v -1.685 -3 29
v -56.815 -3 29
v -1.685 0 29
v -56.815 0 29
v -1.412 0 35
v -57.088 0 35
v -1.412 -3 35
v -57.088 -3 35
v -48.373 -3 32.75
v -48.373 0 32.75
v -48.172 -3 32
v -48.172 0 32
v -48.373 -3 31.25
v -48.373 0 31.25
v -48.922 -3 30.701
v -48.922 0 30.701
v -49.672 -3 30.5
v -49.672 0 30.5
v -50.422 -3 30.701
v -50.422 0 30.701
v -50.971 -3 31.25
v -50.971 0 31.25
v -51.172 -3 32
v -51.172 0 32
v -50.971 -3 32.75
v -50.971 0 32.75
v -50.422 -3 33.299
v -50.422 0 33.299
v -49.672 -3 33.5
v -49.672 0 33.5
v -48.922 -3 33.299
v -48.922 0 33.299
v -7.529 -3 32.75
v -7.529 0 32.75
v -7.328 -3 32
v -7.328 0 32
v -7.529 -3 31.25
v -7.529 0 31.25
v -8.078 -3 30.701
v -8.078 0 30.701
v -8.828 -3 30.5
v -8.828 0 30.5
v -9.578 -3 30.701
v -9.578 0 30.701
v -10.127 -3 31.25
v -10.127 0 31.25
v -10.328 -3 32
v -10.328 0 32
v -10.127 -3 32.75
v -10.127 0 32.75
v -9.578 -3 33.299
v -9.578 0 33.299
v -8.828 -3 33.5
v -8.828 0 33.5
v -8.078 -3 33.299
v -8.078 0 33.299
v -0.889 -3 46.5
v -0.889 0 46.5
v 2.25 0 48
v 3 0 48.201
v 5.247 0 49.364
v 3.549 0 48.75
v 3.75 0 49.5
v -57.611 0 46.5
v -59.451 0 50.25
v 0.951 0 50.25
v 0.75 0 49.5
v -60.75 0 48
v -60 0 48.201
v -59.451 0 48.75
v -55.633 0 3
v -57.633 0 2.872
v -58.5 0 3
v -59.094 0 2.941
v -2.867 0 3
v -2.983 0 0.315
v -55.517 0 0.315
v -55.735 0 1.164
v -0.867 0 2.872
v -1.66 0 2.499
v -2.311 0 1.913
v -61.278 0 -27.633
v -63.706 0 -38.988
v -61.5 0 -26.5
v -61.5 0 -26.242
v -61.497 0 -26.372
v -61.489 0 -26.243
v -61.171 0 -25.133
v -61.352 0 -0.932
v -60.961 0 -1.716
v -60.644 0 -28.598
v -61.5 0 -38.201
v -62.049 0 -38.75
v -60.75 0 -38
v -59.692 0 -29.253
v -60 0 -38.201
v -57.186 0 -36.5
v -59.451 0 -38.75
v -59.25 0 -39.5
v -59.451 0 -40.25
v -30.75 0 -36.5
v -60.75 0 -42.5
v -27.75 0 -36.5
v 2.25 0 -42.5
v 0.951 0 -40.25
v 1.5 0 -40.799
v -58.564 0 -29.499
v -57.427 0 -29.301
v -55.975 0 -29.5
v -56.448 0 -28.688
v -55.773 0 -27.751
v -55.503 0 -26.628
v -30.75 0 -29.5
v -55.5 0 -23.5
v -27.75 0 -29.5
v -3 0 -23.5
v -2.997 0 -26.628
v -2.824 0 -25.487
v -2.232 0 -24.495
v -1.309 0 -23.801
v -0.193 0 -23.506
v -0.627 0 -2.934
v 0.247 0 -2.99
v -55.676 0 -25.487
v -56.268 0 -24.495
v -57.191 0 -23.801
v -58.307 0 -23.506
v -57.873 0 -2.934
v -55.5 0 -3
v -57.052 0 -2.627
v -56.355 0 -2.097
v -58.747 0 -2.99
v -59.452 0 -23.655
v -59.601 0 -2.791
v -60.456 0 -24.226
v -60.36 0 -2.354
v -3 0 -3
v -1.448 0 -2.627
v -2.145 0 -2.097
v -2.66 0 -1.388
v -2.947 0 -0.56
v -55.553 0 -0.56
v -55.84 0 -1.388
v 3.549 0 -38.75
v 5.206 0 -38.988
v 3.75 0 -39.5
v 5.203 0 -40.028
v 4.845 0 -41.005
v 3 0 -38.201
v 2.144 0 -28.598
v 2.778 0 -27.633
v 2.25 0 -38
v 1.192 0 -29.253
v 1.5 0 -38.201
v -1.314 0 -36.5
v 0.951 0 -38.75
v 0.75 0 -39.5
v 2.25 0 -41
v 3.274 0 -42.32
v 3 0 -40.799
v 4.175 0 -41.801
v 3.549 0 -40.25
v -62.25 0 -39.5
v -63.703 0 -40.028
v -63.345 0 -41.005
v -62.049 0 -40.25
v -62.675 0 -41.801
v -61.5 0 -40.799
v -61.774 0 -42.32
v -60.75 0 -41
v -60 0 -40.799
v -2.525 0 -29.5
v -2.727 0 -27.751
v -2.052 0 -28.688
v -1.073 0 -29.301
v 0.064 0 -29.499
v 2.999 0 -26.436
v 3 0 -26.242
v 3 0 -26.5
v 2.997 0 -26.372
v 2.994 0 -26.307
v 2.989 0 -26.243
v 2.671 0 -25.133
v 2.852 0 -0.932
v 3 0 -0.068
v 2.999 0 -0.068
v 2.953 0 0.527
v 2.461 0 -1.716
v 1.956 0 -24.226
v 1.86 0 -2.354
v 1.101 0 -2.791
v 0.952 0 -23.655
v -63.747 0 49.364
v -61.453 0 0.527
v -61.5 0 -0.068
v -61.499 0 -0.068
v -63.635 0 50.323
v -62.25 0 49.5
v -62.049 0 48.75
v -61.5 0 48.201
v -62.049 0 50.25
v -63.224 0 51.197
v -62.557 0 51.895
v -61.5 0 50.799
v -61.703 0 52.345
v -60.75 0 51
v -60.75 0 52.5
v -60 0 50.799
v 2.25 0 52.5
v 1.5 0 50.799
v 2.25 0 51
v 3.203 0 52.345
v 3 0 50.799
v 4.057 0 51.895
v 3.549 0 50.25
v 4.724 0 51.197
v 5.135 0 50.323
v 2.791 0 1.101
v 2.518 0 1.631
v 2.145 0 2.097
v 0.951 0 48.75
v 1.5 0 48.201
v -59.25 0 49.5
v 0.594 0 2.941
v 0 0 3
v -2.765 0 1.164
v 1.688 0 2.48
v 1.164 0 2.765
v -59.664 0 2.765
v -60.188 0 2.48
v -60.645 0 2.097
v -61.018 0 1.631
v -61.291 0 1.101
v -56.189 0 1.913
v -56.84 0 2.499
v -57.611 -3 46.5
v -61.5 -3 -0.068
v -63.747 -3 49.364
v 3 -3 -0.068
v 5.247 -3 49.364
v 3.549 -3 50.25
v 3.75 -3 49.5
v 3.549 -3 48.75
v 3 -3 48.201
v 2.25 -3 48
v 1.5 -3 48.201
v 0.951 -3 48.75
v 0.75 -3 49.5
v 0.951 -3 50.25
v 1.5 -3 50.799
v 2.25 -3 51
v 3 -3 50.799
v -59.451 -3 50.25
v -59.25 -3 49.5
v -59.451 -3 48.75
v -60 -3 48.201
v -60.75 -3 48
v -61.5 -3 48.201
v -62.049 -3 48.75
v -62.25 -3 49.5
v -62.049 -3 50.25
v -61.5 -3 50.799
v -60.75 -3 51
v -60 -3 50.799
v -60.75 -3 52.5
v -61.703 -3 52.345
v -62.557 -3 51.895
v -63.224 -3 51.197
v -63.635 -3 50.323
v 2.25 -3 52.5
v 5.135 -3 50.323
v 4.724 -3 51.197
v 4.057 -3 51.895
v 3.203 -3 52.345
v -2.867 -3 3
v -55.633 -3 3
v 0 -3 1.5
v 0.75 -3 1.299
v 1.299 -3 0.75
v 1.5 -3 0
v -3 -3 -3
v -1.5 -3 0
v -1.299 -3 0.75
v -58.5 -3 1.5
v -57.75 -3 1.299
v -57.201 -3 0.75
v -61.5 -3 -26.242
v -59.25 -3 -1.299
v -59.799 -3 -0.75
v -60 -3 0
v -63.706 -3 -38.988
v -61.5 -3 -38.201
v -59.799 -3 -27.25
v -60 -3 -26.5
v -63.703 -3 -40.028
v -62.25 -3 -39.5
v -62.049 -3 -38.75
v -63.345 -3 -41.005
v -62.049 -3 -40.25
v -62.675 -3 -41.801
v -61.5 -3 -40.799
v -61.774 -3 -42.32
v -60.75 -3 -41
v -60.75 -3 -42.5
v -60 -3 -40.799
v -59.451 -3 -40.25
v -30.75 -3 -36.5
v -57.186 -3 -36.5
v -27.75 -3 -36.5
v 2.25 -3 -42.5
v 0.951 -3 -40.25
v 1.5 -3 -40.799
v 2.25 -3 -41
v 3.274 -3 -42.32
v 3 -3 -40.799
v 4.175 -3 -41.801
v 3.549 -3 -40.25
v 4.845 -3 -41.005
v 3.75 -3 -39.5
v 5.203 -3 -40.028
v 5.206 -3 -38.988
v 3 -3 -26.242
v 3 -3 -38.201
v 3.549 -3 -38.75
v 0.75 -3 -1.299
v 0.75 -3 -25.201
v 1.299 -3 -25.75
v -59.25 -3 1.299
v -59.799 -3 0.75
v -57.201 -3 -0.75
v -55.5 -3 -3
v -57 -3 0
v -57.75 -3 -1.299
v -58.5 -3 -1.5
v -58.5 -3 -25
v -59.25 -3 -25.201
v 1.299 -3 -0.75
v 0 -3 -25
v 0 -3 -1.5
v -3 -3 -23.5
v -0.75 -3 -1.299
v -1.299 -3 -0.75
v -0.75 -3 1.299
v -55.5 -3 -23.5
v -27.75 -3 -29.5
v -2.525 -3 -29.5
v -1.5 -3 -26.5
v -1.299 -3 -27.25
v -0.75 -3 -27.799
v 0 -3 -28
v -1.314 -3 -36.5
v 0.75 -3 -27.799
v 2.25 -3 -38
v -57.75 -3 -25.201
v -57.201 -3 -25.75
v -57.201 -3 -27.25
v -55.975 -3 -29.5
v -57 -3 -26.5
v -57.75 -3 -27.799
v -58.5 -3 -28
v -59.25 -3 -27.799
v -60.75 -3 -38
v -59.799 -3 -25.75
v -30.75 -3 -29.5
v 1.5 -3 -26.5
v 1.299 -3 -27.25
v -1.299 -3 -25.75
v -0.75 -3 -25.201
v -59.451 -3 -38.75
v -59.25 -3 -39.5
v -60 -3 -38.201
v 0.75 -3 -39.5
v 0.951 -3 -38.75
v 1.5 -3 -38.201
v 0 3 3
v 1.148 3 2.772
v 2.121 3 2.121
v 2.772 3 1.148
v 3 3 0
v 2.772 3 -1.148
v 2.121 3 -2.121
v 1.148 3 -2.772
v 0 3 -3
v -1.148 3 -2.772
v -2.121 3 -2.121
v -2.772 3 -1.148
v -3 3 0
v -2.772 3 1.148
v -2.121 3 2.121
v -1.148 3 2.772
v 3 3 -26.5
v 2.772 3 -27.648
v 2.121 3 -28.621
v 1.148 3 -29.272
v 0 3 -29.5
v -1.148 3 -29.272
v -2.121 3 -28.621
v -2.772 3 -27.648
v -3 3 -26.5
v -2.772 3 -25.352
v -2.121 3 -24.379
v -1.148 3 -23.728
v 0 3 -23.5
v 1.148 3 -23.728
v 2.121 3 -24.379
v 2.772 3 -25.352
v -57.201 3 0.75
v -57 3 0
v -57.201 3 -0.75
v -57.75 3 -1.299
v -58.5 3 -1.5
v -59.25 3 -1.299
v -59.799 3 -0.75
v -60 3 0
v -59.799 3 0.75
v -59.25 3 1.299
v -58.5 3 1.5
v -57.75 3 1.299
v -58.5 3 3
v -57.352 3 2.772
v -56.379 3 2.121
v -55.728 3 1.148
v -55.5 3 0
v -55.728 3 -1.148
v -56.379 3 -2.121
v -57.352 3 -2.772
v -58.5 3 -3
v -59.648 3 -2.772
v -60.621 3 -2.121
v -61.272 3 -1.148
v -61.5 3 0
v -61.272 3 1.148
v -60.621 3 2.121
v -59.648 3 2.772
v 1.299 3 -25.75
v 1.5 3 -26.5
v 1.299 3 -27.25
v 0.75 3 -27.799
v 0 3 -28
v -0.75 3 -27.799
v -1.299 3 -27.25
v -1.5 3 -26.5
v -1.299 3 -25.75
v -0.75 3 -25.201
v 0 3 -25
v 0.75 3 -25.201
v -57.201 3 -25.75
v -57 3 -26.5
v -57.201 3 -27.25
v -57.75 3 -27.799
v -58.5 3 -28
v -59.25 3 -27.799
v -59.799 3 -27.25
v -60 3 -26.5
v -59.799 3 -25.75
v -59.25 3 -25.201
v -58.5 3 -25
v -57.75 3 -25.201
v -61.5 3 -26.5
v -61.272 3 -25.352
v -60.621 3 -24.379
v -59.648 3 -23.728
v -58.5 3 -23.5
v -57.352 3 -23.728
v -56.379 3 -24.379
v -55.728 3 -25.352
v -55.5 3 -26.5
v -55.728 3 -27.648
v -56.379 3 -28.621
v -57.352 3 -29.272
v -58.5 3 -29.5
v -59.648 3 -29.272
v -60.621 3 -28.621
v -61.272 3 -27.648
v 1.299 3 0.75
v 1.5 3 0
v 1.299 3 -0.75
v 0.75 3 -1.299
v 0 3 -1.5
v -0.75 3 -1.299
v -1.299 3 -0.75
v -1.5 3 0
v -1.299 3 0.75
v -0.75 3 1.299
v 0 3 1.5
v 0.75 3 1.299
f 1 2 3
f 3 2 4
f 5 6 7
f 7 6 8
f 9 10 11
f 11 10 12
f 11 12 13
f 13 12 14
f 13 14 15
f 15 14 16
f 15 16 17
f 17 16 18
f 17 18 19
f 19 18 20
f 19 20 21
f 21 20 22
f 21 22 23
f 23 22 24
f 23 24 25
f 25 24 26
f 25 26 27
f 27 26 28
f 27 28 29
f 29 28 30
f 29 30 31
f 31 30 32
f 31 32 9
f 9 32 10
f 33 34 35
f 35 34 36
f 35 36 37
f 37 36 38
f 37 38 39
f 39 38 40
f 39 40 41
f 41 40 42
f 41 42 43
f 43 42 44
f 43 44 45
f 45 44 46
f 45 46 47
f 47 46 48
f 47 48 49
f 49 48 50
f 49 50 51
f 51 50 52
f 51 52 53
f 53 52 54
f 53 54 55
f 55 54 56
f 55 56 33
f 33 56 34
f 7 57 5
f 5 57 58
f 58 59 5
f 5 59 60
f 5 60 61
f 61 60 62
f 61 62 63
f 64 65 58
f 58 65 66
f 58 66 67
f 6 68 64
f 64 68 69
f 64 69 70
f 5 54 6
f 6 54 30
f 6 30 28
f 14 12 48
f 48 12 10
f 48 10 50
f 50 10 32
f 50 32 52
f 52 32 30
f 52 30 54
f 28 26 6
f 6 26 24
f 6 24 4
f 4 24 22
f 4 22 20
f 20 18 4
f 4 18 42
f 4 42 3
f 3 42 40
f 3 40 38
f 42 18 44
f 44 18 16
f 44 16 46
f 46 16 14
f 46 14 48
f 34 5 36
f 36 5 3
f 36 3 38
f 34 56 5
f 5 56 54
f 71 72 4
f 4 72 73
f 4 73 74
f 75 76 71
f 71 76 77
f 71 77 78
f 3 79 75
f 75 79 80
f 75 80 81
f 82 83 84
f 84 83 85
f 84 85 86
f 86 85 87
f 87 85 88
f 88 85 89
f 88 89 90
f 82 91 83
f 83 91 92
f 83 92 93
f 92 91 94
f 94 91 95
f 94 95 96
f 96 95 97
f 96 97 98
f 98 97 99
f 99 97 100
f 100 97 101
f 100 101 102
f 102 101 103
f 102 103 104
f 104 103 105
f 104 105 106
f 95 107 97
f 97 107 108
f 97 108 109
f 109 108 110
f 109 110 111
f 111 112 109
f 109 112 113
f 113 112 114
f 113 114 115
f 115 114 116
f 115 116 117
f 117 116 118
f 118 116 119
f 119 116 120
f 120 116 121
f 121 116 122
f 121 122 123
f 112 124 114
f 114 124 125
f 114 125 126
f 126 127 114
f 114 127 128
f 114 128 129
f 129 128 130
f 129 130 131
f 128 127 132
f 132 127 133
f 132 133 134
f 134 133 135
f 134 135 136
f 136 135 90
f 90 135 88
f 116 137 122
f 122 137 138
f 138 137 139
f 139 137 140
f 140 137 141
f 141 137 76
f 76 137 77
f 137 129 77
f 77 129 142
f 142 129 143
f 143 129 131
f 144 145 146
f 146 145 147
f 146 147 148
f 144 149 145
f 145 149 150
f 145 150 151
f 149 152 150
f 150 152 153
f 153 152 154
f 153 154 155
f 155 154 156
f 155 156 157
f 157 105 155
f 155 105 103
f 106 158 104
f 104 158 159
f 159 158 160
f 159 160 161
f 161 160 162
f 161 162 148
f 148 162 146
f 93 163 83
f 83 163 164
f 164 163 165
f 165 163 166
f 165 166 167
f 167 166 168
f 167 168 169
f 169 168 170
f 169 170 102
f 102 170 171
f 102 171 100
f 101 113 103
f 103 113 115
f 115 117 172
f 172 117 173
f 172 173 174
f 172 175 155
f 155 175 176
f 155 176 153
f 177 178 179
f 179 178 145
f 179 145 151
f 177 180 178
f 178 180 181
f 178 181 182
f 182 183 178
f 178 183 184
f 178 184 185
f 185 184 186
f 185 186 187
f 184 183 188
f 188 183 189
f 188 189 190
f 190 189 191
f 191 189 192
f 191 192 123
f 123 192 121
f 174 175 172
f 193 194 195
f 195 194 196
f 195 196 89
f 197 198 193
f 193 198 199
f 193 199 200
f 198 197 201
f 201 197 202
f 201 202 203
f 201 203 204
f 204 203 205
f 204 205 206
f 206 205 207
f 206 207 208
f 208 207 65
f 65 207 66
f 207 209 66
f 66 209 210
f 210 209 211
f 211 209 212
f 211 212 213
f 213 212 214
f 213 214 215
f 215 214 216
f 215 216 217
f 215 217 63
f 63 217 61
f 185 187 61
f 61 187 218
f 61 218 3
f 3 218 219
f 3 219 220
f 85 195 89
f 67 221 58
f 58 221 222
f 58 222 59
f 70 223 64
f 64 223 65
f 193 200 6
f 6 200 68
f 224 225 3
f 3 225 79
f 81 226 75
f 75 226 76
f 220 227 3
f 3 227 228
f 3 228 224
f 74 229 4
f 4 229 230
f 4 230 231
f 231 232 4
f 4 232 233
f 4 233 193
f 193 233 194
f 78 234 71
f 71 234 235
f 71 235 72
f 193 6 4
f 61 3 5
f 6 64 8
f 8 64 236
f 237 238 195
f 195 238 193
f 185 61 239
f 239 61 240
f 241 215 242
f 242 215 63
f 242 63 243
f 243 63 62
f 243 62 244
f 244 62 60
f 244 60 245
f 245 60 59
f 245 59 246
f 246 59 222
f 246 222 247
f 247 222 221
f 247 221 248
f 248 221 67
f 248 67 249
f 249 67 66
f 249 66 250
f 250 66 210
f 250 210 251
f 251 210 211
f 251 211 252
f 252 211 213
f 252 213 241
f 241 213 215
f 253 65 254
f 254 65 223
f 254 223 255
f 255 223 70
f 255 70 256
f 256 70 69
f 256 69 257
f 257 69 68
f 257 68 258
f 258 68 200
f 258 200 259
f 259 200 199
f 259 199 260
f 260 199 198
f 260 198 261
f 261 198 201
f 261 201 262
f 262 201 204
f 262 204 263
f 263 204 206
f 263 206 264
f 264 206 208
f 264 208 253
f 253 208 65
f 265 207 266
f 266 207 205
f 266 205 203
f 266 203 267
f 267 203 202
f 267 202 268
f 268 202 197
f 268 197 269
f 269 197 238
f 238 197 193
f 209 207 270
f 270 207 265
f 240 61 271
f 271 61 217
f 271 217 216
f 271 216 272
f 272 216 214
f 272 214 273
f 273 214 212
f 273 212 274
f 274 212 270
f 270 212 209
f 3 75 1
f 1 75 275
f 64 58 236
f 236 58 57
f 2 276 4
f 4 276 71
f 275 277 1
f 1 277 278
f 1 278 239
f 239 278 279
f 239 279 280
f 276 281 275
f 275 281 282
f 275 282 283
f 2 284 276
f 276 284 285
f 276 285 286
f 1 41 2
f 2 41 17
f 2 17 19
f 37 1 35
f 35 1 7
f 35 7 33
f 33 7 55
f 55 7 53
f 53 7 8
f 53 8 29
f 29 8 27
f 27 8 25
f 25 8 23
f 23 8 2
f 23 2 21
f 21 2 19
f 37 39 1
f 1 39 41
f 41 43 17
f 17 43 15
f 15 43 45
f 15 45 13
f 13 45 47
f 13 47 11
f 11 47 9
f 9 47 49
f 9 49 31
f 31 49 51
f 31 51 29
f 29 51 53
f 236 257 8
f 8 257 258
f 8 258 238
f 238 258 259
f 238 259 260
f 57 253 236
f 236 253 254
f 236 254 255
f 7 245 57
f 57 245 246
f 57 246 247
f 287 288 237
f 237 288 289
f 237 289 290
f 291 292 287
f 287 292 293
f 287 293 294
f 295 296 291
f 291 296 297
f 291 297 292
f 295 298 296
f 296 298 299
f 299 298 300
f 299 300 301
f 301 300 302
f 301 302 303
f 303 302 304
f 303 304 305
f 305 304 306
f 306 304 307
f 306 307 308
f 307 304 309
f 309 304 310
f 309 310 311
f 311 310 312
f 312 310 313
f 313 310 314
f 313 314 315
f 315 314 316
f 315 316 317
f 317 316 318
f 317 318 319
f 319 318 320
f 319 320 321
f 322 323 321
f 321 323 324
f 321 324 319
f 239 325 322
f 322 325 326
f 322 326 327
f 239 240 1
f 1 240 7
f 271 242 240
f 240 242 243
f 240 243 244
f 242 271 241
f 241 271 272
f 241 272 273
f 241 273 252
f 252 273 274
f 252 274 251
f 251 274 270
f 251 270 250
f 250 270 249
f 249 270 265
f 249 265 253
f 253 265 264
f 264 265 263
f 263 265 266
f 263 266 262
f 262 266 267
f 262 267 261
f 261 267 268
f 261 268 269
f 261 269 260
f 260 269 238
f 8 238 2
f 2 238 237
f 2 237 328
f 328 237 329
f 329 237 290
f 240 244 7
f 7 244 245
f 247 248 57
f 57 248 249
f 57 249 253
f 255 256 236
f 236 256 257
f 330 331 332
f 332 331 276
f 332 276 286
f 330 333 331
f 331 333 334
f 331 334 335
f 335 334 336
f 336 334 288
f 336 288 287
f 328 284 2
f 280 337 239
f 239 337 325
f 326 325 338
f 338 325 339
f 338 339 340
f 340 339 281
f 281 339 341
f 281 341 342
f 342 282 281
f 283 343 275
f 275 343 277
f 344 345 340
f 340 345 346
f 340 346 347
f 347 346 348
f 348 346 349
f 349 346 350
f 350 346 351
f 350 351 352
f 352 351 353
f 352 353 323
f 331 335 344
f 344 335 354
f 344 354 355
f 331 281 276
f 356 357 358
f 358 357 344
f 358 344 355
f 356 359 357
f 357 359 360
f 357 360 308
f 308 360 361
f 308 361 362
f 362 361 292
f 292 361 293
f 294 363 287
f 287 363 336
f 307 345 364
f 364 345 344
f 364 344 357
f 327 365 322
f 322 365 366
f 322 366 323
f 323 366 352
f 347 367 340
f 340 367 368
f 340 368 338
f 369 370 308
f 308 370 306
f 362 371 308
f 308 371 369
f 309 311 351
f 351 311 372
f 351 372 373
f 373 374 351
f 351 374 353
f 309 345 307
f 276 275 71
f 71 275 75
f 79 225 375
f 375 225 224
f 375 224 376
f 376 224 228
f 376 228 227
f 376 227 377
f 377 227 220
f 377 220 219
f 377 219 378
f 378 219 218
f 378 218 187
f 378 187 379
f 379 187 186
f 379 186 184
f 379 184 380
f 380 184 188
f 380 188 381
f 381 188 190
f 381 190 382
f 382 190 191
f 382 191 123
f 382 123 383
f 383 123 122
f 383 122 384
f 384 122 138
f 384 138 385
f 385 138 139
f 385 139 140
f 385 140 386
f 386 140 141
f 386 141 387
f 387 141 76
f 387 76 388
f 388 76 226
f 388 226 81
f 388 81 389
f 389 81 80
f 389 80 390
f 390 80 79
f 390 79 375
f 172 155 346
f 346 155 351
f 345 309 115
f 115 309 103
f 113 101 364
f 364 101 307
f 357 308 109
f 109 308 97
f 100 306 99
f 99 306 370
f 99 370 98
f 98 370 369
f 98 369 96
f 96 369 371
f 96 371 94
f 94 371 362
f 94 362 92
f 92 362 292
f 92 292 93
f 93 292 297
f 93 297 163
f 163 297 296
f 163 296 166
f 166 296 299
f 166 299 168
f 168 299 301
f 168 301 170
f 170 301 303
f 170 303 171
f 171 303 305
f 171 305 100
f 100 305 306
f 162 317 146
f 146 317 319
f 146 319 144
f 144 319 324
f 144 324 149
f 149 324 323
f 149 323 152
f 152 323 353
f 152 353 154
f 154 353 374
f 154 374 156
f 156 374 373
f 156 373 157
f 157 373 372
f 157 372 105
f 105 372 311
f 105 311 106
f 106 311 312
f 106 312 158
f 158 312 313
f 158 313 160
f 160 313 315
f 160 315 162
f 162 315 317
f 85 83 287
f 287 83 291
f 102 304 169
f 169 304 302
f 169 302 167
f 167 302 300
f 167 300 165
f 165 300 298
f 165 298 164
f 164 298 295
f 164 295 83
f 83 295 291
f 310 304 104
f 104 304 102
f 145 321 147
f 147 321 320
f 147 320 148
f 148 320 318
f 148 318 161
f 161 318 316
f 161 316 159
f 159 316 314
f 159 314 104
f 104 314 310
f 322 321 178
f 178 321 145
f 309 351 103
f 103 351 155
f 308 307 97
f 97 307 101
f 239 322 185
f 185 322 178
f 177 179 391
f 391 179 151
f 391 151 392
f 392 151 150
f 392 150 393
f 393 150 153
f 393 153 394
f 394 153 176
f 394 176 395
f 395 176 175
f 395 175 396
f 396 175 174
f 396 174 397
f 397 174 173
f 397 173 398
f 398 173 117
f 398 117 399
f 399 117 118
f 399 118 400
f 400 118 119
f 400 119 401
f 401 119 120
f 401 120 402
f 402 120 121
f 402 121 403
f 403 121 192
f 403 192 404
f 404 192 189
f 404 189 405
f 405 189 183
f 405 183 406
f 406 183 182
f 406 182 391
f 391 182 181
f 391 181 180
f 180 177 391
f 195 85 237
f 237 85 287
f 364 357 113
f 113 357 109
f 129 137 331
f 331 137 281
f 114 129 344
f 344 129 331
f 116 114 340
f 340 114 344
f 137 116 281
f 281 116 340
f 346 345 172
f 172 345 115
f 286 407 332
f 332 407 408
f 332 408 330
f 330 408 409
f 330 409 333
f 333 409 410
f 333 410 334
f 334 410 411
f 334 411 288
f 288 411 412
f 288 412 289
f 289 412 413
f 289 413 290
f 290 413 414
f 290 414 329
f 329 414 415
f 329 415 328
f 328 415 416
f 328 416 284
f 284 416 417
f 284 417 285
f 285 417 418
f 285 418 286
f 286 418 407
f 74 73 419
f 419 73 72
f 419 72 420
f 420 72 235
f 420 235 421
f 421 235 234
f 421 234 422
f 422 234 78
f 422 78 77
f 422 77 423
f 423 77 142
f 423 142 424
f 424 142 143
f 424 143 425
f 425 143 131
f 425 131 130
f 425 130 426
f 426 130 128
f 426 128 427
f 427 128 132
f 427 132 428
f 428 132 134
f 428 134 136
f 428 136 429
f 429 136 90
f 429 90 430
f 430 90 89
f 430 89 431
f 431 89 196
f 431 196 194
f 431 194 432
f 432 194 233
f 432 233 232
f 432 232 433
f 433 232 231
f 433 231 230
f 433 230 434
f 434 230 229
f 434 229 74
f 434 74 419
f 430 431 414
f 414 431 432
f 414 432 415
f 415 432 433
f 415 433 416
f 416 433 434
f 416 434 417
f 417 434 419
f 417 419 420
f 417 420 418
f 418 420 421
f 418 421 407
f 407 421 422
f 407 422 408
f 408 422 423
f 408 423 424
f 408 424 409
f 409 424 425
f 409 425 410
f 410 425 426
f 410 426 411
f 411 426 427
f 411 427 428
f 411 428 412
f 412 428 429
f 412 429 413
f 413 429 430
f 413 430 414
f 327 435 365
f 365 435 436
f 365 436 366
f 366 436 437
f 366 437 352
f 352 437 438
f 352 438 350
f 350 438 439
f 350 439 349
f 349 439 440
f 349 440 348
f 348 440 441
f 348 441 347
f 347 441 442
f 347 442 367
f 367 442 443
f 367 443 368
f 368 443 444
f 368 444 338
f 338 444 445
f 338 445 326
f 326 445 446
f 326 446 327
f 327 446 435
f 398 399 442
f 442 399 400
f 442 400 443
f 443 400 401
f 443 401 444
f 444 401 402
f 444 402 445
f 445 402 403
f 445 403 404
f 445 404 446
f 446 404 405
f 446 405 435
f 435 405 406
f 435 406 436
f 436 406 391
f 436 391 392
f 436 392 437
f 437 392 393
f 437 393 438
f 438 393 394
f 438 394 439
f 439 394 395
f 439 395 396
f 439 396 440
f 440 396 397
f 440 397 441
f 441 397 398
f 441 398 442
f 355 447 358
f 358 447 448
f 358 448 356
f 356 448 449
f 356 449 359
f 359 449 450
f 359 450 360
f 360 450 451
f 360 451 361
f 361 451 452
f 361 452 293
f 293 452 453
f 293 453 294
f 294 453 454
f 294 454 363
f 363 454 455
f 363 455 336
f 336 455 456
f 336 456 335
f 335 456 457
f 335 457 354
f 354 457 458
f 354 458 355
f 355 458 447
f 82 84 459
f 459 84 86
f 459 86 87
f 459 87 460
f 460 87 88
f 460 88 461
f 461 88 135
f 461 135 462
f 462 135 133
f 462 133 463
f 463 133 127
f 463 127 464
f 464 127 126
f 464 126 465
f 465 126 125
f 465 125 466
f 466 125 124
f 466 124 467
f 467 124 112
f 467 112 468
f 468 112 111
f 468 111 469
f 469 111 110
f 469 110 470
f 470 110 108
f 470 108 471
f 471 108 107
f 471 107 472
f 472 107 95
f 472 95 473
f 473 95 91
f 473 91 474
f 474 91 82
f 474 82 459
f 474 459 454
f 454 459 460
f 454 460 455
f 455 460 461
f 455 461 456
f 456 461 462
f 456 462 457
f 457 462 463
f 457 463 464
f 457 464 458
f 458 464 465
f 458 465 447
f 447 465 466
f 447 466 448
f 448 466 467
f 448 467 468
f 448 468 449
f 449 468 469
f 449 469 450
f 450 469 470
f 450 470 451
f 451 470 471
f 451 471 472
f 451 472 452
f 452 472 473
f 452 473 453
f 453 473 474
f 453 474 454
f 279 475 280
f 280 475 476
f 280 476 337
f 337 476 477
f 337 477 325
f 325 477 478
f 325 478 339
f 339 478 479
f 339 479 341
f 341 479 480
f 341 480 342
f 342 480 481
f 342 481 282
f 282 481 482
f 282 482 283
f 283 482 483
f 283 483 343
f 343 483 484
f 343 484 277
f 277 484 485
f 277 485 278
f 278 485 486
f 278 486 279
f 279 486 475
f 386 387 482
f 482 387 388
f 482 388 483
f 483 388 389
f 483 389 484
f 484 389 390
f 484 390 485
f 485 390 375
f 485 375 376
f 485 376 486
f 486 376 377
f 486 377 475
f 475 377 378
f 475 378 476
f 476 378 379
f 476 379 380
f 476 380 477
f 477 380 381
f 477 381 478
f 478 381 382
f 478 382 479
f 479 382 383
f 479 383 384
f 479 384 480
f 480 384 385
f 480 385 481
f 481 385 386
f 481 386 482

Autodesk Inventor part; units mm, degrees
ref_plane "YZ Plane" through (0, 0, 0) normal (1, 0, 0) x (0, 1, 0)
ref_plane "XZ Plane" through (0, 0, 0) normal (0, 1, 0) x (-1, 0, 0)
ref_plane "XY Plane" through (0, 0, 0) normal (0, 0, 1) x (1, 0, 0)
sketch "Sketch1" plane through (0, 0, 0) normal (0, 1, 0) x (-1, 0, 0)
  line L0 (0, 0) -> (58.5, 0)
  line L1 (58.5, 0) -> (58.5, -26.5)
  line L2 (58.5, -26.5) -> (0, -26.5)
  line L3 (0, -26.5) -> (0, 0)
  circle A0 centre (58.5, 0) radius 1.5
  circle A1 centre (58.5, -26.5) radius 1.5
  circle A2 centre (0, 0) radius 1.5
  circle A3 centre (0, -26.5) radius 1.5
  circle A4 centre (0, 0) radius 3
  circle A5 centre (0, -26.5) radius 3
  circle A6 centre (58.5, 0) radius 3
  circle A7 centre (58.5, -26.5) radius 3
  dimension "d0" = 58.5
  dimension "d1" = 26.5
  dimension "d2" = 3
  dimension "d3" = 3
  dimension "d4" = 3
  dimension "d5" = 3
  dimension "d6" = 6
  dimension "d7" = 6
  dimension "d8" = 6
  dimension "d9" = 6
extrude "Extrusion1" add sketch "Sketch1" along normal blind 3 contours A2 L3 A4 L0 | L0 A4 L3 A2 | A6 L1 A0 L0 | L0 A0 L1 A6 | A5 L2 A3 L3 | L3 A3 L2 A5 | A7 L2 A1 L1 | L1 A1 L2 A7
sketch "Sketch2" plane through (0, 0, 0) normal (0, -1, 0) x (1, 0, 0)
  circle A0 centre (0, 0) radius 1.5
  circle A1 centre (0, -26.5) radius 1.5 projected
  circle A2 centre (0, -26.5) radius 1.5
  circle A3 centre (-58.5, -26.5) radius 1.5 projected
  circle A4 centre (-58.5, -26.5) radius 1.5
  circle A5 centre (-58.5, 0) radius 1.5 projected
  circle A6 centre (-58.5, 0) radius 1.5
  line L0 (-58.5, 0) -> (0, 0) construction
  line L1 (-58.5, -3) -> (0, -3)
  line L2 (0, 3) -> (-58.5, 3)
  arc A7 (-58.5, 3) -> (-58.5, -3) centre (-58.5, 0) ccw
  arc A8 (0, -3) -> (0, 3) centre (0, 0) ccw
  line L3 (0, 0) -> (0, -26.5) construction
  line L4 (-3, 0) -> (-3, -26.5)
  line L5 (3, -26.5) -> (3, 0)
  arc A9 (3, 0) -> (-3, 0) centre (0, 0) ccw
  arc A10 (-3, -26.5) -> (3, -26.5) centre (0, -26.5) ccw
  line L6 (0, -26.5) -> (-58.5, -26.5) construction
  line L7 (0, -29.5) -> (-58.5, -29.5)
  line L8 (-58.5, -23.5) -> (0, -23.5)
  arc A11 (0, -29.5) -> (0, -23.5) centre (0, -26.5) ccw
  arc A12 (-58.5, -23.5) -> (-58.5, -29.5) centre (-58.5, -26.5) ccw
  line L9 (-58.5, -26.5) -> (-58.5, 0) construction
  line L10 (-55.5, -26.5) -> (-55.5, 0)
  line L11 (-61.5, 0) -> (-61.5, -26.5)
  arc A13 (-61.5, -26.5) -> (-55.5, -26.5) centre (-58.5, -26.5) ccw
  arc A14 (-55.5, 0) -> (-61.5, 0) centre (-58.5, 0) ccw
  point P0 (-29.25, 0)
  point P1 (0, -13.25)
  point P2 (-29.25, -26.5)
  point P3 (-58.5, -13.25)
  point P4 (-3, -3)
  point P5 (-3, -23.5)
  point P6 (-55.5, -23.5)
  point P7 (-55.5, -3)
extrude "Extrusion2" add sketch "Sketch2" along normal blind 3 contours A7 A14 L10 L1 | L1 L10 L8 A12 L11 A7 | L10 A14 L2 A9 L4 L1 | L4 A9 A8 L1 | L1 A8 L5 A11 L8 L4 | L10 A13 A12 L8 | L8 L4 A10 L7 A13 L10 | L8 A11 A10 L4
sketch "Sketch3" plane through (0, -3, 0) normal (0, -1, 0) x (1, 0, 0)
  line L0 (-58.5, -29.5) -> (0, -29.5) projected
  line L1 (-29.25, -29.5) -> (-29.25, -39.5)
  line L2 (-60.75, -39.5) -> (2.25, -39.5)
  circle A0 centre (-60.75, -39.5) radius 1.5
  circle A1 centre (2.25, -39.5) radius 1.5
  circle A2 centre (-58.5, -26.5) radius 1.5 projected
  line L3 (-60.75, -39.5) -> (-58.5, -26.5) construction
  line L4 (-57.7939, -40.0116) -> (-55.5439, -27.0116)
  line L5 (-61.4561, -25.9884) -> (-63.7061, -38.9884)
  arc A3 (-63.7061, -38.9884) -> (-57.7939, -40.0116) centre (-60.75, -39.5) ccw
  arc A4 (-55.5439, -27.0116) -> (-61.4561, -25.9884) centre (-58.5, -26.5) ccw
  circle A5 centre (0, -26.5) radius 1.5 projected
  line L6 (2.25, -39.5) -> (0, -26.5) construction
  line L7 (5.2061, -38.9884) -> (2.9561, -25.9884)
  line L8 (-2.9561, -27.0116) -> (-0.7061, -40.0116)
  arc A6 (-0.7061, -40.0116) -> (5.2061, -38.9884) centre (2.25, -39.5) ccw
  arc A7 (2.9561, -25.9884) -> (-2.9561, -27.0116) centre (0, -26.5) ccw
  line L9 (-60.75, -39.5) -> (2.25, -39.5) construction
  line L10 (-60.75, -36.5) -> (2.25, -36.5)
  line L11 (2.25, -42.5) -> (-60.75, -42.5)
  arc A8 (-60.75, -36.5) -> (-60.75, -42.5) centre (-60.75, -39.5) ccw
  arc A9 (2.25, -42.5) -> (2.25, -36.5) centre (2.25, -39.5) ccw
  line L12 (-29.25, -39.5) -> (-29.25, -27.0116) construction
  line L13 (-27.75, -39.5) -> (-27.75, -27.0116)
  line L14 (-30.75, -27.0116) -> (-30.75, -39.5)
  arc A10 (-30.75, -39.5) -> (-27.75, -39.5) centre (-29.25, -39.5) ccw
  arc A11 (-27.75, -27.0116) -> (-30.75, -27.0116) centre (-29.25, -27.0116) ccw
  point P0 (0, 0)
  point P1 (-59.625, -33)
  point P2 (1.125, -33)
  point P3 (-29.25, -33.2558)
  point P4 (-57.1862, -36.5)
  point P5 (-1.3138, -36.5)
  point P6 (-27.75, -36.5)
  point P7 (-30.75, -36.5)
  dimension "d14" = 10
  dimension "d15" = 63
  dimension "d16" = 3
  dimension "d17" = 3
  dimension "d18" = 6
  dimension "d19" = 6
  dimension "d20" = 3
extrude "Extrusion3" add sketch "Sketch3" against normal blind 3 contours L4 L10 A8 L5 A4 | L14 A11 L13 L0 | L0 L1 L10 L14 | L10 L14 L2 L4 | L4 A3 A8 L10 | L0 L13 L10 L1 | L10 L1 L2 L14 | L2 A10 L8 A6 L11 A3 L4 | L10 L13 L2 L1 | L2 A10 | L8 A7 L7 A9 L10 | L10 L8 L2 L13 | L10 A9 A6 L8
sketch "Sketch4" plane through (0, 0, 0) normal (0, 1, 0) x (1, 0, 0)
  circle A0 centre (2.25, 39.5) radius 1.5 projected
  line L0 (2.25, 39.5) -> (2.25, -49.5)
  line L1 (2.25, -49.5) -> (-60.75, -49.5)
  circle A1 centre (2.25, -49.5) radius 1.5
  circle A2 centre (-60.75, -49.5) radius 1.5
  circle A3 centre (-58.5, 0) radius 1.5 projected
  line L2 (-60.75, -49.5) -> (-58.5, 0) construction
  line L3 (-57.7531, -49.6362) -> (-55.5031, -0.1362)
  line L4 (-61.4969, 0.1362) -> (-63.7469, -49.3638)
  arc A4 (-63.7469, -49.3638) -> (-57.7531, -49.6362) centre (-60.75, -49.5) ccw
  arc A5 (-55.5031, -0.1362) -> (-61.4969, 0.1362) centre (-58.5, 0) ccw
  line L5 (2.25, -49.5) -> (0, 0) construction
  line L6 (5.2469, -49.3638) -> (2.9969, 0.1362)
  line L7 (-2.9969, -0.1362) -> (-0.7469, -49.6362)
  arc A6 (-0.7469, -49.6362) -> (5.2469, -49.3638) centre (2.25, -49.5) ccw
  arc A7 (2.9969, 0.1362) -> (-2.9969, -0.1362) centre (0, 0) ccw
  line L8 (2.25, -49.5) -> (-60.75, -49.5) construction
  line L9 (2.25, -46.5) -> (-60.75, -46.5)
  line L10 (-60.75, -52.5) -> (2.25, -52.5)
  arc A8 (2.25, -52.5) -> (2.25, -46.5) centre (2.25, -49.5) ccw
  arc A9 (-60.75, -46.5) -> (-60.75, -52.5) centre (-60.75, -49.5) ccw
  circle A10 centre (0, 0) radius 1.5
  circle A11 centre (-58.5, 0) radius 1.5
  point P0 (-59.625, -24.75)
  point P1 (1.125, -24.75)
  point P2 (-29.25, -49.5)
  point P3 (-0.8895, -46.5)
  point P4 (-57.6105, -46.5)
  point P5 (2.25, -52.5)
  dimension "d23" = 89
  dimension "d24" = 63
  dimension "d25" = 3
  dimension "d26" = 3
  dimension "d27" = 6
  dimension "d28" = 6
extrude "Extrusion4" add sketch "Sketch4" against normal blind 3 contours A7 L6 A8 L0 | L0 L9 L7 A7 | A8 A6 L7 L1 A1 L0 | L0 A1 L1 L7 L9 | L7 L1 L3 L9 | L7 A6 L10 A4 L3 L1 | L9 A9 L4 A5 L3 | L3 A4 A9 L9
sketch "Sketch5" plane through (0, 0, 0) normal (0, 1, 0) x (1, 0, 0)
  circle A0 centre (-58.5, 0) radius 1.5 projected
  line L0 (-58.5, 0) -> (0, 0)
  line L1 (0, 0) -> (0, -35)
  line L2 (0, -35) -> (-58.5, -35)
  line L3 (-58.5, -35) -> (-58.5, 0)
  line L4 (0, -35) -> (-58.5, -35)
  line L5 (-58.5, -35) -> (-58.5, -29)
  line L6 (-58.5, -29) -> (0, -29)
  line L7 (0, -29) -> (0, -35)
  line L8 (-29.25, -29) -> (-29.25, -35)
  line L9 (-49.672, -32) -> (-8.828, -32)
  circle A1 centre (-49.672, -32) radius 1.5
  circle A2 centre (-8.828, -32) radius 1.5
  point P0 (-29.25, -32)
  point P1 (0, -29)
  dimension "d31" = 35
  dimension "d32" = 6
  dimension "d33" = 40.844
  dimension "d34" = 3
  dimension "d35" = 3
extrude "Extrusion5" add sketch "Sketch5" against normal blind 3 contours L6 L8 L2 L3 | L1 L2 L8 L6
properties part number "bigbucksupport"
